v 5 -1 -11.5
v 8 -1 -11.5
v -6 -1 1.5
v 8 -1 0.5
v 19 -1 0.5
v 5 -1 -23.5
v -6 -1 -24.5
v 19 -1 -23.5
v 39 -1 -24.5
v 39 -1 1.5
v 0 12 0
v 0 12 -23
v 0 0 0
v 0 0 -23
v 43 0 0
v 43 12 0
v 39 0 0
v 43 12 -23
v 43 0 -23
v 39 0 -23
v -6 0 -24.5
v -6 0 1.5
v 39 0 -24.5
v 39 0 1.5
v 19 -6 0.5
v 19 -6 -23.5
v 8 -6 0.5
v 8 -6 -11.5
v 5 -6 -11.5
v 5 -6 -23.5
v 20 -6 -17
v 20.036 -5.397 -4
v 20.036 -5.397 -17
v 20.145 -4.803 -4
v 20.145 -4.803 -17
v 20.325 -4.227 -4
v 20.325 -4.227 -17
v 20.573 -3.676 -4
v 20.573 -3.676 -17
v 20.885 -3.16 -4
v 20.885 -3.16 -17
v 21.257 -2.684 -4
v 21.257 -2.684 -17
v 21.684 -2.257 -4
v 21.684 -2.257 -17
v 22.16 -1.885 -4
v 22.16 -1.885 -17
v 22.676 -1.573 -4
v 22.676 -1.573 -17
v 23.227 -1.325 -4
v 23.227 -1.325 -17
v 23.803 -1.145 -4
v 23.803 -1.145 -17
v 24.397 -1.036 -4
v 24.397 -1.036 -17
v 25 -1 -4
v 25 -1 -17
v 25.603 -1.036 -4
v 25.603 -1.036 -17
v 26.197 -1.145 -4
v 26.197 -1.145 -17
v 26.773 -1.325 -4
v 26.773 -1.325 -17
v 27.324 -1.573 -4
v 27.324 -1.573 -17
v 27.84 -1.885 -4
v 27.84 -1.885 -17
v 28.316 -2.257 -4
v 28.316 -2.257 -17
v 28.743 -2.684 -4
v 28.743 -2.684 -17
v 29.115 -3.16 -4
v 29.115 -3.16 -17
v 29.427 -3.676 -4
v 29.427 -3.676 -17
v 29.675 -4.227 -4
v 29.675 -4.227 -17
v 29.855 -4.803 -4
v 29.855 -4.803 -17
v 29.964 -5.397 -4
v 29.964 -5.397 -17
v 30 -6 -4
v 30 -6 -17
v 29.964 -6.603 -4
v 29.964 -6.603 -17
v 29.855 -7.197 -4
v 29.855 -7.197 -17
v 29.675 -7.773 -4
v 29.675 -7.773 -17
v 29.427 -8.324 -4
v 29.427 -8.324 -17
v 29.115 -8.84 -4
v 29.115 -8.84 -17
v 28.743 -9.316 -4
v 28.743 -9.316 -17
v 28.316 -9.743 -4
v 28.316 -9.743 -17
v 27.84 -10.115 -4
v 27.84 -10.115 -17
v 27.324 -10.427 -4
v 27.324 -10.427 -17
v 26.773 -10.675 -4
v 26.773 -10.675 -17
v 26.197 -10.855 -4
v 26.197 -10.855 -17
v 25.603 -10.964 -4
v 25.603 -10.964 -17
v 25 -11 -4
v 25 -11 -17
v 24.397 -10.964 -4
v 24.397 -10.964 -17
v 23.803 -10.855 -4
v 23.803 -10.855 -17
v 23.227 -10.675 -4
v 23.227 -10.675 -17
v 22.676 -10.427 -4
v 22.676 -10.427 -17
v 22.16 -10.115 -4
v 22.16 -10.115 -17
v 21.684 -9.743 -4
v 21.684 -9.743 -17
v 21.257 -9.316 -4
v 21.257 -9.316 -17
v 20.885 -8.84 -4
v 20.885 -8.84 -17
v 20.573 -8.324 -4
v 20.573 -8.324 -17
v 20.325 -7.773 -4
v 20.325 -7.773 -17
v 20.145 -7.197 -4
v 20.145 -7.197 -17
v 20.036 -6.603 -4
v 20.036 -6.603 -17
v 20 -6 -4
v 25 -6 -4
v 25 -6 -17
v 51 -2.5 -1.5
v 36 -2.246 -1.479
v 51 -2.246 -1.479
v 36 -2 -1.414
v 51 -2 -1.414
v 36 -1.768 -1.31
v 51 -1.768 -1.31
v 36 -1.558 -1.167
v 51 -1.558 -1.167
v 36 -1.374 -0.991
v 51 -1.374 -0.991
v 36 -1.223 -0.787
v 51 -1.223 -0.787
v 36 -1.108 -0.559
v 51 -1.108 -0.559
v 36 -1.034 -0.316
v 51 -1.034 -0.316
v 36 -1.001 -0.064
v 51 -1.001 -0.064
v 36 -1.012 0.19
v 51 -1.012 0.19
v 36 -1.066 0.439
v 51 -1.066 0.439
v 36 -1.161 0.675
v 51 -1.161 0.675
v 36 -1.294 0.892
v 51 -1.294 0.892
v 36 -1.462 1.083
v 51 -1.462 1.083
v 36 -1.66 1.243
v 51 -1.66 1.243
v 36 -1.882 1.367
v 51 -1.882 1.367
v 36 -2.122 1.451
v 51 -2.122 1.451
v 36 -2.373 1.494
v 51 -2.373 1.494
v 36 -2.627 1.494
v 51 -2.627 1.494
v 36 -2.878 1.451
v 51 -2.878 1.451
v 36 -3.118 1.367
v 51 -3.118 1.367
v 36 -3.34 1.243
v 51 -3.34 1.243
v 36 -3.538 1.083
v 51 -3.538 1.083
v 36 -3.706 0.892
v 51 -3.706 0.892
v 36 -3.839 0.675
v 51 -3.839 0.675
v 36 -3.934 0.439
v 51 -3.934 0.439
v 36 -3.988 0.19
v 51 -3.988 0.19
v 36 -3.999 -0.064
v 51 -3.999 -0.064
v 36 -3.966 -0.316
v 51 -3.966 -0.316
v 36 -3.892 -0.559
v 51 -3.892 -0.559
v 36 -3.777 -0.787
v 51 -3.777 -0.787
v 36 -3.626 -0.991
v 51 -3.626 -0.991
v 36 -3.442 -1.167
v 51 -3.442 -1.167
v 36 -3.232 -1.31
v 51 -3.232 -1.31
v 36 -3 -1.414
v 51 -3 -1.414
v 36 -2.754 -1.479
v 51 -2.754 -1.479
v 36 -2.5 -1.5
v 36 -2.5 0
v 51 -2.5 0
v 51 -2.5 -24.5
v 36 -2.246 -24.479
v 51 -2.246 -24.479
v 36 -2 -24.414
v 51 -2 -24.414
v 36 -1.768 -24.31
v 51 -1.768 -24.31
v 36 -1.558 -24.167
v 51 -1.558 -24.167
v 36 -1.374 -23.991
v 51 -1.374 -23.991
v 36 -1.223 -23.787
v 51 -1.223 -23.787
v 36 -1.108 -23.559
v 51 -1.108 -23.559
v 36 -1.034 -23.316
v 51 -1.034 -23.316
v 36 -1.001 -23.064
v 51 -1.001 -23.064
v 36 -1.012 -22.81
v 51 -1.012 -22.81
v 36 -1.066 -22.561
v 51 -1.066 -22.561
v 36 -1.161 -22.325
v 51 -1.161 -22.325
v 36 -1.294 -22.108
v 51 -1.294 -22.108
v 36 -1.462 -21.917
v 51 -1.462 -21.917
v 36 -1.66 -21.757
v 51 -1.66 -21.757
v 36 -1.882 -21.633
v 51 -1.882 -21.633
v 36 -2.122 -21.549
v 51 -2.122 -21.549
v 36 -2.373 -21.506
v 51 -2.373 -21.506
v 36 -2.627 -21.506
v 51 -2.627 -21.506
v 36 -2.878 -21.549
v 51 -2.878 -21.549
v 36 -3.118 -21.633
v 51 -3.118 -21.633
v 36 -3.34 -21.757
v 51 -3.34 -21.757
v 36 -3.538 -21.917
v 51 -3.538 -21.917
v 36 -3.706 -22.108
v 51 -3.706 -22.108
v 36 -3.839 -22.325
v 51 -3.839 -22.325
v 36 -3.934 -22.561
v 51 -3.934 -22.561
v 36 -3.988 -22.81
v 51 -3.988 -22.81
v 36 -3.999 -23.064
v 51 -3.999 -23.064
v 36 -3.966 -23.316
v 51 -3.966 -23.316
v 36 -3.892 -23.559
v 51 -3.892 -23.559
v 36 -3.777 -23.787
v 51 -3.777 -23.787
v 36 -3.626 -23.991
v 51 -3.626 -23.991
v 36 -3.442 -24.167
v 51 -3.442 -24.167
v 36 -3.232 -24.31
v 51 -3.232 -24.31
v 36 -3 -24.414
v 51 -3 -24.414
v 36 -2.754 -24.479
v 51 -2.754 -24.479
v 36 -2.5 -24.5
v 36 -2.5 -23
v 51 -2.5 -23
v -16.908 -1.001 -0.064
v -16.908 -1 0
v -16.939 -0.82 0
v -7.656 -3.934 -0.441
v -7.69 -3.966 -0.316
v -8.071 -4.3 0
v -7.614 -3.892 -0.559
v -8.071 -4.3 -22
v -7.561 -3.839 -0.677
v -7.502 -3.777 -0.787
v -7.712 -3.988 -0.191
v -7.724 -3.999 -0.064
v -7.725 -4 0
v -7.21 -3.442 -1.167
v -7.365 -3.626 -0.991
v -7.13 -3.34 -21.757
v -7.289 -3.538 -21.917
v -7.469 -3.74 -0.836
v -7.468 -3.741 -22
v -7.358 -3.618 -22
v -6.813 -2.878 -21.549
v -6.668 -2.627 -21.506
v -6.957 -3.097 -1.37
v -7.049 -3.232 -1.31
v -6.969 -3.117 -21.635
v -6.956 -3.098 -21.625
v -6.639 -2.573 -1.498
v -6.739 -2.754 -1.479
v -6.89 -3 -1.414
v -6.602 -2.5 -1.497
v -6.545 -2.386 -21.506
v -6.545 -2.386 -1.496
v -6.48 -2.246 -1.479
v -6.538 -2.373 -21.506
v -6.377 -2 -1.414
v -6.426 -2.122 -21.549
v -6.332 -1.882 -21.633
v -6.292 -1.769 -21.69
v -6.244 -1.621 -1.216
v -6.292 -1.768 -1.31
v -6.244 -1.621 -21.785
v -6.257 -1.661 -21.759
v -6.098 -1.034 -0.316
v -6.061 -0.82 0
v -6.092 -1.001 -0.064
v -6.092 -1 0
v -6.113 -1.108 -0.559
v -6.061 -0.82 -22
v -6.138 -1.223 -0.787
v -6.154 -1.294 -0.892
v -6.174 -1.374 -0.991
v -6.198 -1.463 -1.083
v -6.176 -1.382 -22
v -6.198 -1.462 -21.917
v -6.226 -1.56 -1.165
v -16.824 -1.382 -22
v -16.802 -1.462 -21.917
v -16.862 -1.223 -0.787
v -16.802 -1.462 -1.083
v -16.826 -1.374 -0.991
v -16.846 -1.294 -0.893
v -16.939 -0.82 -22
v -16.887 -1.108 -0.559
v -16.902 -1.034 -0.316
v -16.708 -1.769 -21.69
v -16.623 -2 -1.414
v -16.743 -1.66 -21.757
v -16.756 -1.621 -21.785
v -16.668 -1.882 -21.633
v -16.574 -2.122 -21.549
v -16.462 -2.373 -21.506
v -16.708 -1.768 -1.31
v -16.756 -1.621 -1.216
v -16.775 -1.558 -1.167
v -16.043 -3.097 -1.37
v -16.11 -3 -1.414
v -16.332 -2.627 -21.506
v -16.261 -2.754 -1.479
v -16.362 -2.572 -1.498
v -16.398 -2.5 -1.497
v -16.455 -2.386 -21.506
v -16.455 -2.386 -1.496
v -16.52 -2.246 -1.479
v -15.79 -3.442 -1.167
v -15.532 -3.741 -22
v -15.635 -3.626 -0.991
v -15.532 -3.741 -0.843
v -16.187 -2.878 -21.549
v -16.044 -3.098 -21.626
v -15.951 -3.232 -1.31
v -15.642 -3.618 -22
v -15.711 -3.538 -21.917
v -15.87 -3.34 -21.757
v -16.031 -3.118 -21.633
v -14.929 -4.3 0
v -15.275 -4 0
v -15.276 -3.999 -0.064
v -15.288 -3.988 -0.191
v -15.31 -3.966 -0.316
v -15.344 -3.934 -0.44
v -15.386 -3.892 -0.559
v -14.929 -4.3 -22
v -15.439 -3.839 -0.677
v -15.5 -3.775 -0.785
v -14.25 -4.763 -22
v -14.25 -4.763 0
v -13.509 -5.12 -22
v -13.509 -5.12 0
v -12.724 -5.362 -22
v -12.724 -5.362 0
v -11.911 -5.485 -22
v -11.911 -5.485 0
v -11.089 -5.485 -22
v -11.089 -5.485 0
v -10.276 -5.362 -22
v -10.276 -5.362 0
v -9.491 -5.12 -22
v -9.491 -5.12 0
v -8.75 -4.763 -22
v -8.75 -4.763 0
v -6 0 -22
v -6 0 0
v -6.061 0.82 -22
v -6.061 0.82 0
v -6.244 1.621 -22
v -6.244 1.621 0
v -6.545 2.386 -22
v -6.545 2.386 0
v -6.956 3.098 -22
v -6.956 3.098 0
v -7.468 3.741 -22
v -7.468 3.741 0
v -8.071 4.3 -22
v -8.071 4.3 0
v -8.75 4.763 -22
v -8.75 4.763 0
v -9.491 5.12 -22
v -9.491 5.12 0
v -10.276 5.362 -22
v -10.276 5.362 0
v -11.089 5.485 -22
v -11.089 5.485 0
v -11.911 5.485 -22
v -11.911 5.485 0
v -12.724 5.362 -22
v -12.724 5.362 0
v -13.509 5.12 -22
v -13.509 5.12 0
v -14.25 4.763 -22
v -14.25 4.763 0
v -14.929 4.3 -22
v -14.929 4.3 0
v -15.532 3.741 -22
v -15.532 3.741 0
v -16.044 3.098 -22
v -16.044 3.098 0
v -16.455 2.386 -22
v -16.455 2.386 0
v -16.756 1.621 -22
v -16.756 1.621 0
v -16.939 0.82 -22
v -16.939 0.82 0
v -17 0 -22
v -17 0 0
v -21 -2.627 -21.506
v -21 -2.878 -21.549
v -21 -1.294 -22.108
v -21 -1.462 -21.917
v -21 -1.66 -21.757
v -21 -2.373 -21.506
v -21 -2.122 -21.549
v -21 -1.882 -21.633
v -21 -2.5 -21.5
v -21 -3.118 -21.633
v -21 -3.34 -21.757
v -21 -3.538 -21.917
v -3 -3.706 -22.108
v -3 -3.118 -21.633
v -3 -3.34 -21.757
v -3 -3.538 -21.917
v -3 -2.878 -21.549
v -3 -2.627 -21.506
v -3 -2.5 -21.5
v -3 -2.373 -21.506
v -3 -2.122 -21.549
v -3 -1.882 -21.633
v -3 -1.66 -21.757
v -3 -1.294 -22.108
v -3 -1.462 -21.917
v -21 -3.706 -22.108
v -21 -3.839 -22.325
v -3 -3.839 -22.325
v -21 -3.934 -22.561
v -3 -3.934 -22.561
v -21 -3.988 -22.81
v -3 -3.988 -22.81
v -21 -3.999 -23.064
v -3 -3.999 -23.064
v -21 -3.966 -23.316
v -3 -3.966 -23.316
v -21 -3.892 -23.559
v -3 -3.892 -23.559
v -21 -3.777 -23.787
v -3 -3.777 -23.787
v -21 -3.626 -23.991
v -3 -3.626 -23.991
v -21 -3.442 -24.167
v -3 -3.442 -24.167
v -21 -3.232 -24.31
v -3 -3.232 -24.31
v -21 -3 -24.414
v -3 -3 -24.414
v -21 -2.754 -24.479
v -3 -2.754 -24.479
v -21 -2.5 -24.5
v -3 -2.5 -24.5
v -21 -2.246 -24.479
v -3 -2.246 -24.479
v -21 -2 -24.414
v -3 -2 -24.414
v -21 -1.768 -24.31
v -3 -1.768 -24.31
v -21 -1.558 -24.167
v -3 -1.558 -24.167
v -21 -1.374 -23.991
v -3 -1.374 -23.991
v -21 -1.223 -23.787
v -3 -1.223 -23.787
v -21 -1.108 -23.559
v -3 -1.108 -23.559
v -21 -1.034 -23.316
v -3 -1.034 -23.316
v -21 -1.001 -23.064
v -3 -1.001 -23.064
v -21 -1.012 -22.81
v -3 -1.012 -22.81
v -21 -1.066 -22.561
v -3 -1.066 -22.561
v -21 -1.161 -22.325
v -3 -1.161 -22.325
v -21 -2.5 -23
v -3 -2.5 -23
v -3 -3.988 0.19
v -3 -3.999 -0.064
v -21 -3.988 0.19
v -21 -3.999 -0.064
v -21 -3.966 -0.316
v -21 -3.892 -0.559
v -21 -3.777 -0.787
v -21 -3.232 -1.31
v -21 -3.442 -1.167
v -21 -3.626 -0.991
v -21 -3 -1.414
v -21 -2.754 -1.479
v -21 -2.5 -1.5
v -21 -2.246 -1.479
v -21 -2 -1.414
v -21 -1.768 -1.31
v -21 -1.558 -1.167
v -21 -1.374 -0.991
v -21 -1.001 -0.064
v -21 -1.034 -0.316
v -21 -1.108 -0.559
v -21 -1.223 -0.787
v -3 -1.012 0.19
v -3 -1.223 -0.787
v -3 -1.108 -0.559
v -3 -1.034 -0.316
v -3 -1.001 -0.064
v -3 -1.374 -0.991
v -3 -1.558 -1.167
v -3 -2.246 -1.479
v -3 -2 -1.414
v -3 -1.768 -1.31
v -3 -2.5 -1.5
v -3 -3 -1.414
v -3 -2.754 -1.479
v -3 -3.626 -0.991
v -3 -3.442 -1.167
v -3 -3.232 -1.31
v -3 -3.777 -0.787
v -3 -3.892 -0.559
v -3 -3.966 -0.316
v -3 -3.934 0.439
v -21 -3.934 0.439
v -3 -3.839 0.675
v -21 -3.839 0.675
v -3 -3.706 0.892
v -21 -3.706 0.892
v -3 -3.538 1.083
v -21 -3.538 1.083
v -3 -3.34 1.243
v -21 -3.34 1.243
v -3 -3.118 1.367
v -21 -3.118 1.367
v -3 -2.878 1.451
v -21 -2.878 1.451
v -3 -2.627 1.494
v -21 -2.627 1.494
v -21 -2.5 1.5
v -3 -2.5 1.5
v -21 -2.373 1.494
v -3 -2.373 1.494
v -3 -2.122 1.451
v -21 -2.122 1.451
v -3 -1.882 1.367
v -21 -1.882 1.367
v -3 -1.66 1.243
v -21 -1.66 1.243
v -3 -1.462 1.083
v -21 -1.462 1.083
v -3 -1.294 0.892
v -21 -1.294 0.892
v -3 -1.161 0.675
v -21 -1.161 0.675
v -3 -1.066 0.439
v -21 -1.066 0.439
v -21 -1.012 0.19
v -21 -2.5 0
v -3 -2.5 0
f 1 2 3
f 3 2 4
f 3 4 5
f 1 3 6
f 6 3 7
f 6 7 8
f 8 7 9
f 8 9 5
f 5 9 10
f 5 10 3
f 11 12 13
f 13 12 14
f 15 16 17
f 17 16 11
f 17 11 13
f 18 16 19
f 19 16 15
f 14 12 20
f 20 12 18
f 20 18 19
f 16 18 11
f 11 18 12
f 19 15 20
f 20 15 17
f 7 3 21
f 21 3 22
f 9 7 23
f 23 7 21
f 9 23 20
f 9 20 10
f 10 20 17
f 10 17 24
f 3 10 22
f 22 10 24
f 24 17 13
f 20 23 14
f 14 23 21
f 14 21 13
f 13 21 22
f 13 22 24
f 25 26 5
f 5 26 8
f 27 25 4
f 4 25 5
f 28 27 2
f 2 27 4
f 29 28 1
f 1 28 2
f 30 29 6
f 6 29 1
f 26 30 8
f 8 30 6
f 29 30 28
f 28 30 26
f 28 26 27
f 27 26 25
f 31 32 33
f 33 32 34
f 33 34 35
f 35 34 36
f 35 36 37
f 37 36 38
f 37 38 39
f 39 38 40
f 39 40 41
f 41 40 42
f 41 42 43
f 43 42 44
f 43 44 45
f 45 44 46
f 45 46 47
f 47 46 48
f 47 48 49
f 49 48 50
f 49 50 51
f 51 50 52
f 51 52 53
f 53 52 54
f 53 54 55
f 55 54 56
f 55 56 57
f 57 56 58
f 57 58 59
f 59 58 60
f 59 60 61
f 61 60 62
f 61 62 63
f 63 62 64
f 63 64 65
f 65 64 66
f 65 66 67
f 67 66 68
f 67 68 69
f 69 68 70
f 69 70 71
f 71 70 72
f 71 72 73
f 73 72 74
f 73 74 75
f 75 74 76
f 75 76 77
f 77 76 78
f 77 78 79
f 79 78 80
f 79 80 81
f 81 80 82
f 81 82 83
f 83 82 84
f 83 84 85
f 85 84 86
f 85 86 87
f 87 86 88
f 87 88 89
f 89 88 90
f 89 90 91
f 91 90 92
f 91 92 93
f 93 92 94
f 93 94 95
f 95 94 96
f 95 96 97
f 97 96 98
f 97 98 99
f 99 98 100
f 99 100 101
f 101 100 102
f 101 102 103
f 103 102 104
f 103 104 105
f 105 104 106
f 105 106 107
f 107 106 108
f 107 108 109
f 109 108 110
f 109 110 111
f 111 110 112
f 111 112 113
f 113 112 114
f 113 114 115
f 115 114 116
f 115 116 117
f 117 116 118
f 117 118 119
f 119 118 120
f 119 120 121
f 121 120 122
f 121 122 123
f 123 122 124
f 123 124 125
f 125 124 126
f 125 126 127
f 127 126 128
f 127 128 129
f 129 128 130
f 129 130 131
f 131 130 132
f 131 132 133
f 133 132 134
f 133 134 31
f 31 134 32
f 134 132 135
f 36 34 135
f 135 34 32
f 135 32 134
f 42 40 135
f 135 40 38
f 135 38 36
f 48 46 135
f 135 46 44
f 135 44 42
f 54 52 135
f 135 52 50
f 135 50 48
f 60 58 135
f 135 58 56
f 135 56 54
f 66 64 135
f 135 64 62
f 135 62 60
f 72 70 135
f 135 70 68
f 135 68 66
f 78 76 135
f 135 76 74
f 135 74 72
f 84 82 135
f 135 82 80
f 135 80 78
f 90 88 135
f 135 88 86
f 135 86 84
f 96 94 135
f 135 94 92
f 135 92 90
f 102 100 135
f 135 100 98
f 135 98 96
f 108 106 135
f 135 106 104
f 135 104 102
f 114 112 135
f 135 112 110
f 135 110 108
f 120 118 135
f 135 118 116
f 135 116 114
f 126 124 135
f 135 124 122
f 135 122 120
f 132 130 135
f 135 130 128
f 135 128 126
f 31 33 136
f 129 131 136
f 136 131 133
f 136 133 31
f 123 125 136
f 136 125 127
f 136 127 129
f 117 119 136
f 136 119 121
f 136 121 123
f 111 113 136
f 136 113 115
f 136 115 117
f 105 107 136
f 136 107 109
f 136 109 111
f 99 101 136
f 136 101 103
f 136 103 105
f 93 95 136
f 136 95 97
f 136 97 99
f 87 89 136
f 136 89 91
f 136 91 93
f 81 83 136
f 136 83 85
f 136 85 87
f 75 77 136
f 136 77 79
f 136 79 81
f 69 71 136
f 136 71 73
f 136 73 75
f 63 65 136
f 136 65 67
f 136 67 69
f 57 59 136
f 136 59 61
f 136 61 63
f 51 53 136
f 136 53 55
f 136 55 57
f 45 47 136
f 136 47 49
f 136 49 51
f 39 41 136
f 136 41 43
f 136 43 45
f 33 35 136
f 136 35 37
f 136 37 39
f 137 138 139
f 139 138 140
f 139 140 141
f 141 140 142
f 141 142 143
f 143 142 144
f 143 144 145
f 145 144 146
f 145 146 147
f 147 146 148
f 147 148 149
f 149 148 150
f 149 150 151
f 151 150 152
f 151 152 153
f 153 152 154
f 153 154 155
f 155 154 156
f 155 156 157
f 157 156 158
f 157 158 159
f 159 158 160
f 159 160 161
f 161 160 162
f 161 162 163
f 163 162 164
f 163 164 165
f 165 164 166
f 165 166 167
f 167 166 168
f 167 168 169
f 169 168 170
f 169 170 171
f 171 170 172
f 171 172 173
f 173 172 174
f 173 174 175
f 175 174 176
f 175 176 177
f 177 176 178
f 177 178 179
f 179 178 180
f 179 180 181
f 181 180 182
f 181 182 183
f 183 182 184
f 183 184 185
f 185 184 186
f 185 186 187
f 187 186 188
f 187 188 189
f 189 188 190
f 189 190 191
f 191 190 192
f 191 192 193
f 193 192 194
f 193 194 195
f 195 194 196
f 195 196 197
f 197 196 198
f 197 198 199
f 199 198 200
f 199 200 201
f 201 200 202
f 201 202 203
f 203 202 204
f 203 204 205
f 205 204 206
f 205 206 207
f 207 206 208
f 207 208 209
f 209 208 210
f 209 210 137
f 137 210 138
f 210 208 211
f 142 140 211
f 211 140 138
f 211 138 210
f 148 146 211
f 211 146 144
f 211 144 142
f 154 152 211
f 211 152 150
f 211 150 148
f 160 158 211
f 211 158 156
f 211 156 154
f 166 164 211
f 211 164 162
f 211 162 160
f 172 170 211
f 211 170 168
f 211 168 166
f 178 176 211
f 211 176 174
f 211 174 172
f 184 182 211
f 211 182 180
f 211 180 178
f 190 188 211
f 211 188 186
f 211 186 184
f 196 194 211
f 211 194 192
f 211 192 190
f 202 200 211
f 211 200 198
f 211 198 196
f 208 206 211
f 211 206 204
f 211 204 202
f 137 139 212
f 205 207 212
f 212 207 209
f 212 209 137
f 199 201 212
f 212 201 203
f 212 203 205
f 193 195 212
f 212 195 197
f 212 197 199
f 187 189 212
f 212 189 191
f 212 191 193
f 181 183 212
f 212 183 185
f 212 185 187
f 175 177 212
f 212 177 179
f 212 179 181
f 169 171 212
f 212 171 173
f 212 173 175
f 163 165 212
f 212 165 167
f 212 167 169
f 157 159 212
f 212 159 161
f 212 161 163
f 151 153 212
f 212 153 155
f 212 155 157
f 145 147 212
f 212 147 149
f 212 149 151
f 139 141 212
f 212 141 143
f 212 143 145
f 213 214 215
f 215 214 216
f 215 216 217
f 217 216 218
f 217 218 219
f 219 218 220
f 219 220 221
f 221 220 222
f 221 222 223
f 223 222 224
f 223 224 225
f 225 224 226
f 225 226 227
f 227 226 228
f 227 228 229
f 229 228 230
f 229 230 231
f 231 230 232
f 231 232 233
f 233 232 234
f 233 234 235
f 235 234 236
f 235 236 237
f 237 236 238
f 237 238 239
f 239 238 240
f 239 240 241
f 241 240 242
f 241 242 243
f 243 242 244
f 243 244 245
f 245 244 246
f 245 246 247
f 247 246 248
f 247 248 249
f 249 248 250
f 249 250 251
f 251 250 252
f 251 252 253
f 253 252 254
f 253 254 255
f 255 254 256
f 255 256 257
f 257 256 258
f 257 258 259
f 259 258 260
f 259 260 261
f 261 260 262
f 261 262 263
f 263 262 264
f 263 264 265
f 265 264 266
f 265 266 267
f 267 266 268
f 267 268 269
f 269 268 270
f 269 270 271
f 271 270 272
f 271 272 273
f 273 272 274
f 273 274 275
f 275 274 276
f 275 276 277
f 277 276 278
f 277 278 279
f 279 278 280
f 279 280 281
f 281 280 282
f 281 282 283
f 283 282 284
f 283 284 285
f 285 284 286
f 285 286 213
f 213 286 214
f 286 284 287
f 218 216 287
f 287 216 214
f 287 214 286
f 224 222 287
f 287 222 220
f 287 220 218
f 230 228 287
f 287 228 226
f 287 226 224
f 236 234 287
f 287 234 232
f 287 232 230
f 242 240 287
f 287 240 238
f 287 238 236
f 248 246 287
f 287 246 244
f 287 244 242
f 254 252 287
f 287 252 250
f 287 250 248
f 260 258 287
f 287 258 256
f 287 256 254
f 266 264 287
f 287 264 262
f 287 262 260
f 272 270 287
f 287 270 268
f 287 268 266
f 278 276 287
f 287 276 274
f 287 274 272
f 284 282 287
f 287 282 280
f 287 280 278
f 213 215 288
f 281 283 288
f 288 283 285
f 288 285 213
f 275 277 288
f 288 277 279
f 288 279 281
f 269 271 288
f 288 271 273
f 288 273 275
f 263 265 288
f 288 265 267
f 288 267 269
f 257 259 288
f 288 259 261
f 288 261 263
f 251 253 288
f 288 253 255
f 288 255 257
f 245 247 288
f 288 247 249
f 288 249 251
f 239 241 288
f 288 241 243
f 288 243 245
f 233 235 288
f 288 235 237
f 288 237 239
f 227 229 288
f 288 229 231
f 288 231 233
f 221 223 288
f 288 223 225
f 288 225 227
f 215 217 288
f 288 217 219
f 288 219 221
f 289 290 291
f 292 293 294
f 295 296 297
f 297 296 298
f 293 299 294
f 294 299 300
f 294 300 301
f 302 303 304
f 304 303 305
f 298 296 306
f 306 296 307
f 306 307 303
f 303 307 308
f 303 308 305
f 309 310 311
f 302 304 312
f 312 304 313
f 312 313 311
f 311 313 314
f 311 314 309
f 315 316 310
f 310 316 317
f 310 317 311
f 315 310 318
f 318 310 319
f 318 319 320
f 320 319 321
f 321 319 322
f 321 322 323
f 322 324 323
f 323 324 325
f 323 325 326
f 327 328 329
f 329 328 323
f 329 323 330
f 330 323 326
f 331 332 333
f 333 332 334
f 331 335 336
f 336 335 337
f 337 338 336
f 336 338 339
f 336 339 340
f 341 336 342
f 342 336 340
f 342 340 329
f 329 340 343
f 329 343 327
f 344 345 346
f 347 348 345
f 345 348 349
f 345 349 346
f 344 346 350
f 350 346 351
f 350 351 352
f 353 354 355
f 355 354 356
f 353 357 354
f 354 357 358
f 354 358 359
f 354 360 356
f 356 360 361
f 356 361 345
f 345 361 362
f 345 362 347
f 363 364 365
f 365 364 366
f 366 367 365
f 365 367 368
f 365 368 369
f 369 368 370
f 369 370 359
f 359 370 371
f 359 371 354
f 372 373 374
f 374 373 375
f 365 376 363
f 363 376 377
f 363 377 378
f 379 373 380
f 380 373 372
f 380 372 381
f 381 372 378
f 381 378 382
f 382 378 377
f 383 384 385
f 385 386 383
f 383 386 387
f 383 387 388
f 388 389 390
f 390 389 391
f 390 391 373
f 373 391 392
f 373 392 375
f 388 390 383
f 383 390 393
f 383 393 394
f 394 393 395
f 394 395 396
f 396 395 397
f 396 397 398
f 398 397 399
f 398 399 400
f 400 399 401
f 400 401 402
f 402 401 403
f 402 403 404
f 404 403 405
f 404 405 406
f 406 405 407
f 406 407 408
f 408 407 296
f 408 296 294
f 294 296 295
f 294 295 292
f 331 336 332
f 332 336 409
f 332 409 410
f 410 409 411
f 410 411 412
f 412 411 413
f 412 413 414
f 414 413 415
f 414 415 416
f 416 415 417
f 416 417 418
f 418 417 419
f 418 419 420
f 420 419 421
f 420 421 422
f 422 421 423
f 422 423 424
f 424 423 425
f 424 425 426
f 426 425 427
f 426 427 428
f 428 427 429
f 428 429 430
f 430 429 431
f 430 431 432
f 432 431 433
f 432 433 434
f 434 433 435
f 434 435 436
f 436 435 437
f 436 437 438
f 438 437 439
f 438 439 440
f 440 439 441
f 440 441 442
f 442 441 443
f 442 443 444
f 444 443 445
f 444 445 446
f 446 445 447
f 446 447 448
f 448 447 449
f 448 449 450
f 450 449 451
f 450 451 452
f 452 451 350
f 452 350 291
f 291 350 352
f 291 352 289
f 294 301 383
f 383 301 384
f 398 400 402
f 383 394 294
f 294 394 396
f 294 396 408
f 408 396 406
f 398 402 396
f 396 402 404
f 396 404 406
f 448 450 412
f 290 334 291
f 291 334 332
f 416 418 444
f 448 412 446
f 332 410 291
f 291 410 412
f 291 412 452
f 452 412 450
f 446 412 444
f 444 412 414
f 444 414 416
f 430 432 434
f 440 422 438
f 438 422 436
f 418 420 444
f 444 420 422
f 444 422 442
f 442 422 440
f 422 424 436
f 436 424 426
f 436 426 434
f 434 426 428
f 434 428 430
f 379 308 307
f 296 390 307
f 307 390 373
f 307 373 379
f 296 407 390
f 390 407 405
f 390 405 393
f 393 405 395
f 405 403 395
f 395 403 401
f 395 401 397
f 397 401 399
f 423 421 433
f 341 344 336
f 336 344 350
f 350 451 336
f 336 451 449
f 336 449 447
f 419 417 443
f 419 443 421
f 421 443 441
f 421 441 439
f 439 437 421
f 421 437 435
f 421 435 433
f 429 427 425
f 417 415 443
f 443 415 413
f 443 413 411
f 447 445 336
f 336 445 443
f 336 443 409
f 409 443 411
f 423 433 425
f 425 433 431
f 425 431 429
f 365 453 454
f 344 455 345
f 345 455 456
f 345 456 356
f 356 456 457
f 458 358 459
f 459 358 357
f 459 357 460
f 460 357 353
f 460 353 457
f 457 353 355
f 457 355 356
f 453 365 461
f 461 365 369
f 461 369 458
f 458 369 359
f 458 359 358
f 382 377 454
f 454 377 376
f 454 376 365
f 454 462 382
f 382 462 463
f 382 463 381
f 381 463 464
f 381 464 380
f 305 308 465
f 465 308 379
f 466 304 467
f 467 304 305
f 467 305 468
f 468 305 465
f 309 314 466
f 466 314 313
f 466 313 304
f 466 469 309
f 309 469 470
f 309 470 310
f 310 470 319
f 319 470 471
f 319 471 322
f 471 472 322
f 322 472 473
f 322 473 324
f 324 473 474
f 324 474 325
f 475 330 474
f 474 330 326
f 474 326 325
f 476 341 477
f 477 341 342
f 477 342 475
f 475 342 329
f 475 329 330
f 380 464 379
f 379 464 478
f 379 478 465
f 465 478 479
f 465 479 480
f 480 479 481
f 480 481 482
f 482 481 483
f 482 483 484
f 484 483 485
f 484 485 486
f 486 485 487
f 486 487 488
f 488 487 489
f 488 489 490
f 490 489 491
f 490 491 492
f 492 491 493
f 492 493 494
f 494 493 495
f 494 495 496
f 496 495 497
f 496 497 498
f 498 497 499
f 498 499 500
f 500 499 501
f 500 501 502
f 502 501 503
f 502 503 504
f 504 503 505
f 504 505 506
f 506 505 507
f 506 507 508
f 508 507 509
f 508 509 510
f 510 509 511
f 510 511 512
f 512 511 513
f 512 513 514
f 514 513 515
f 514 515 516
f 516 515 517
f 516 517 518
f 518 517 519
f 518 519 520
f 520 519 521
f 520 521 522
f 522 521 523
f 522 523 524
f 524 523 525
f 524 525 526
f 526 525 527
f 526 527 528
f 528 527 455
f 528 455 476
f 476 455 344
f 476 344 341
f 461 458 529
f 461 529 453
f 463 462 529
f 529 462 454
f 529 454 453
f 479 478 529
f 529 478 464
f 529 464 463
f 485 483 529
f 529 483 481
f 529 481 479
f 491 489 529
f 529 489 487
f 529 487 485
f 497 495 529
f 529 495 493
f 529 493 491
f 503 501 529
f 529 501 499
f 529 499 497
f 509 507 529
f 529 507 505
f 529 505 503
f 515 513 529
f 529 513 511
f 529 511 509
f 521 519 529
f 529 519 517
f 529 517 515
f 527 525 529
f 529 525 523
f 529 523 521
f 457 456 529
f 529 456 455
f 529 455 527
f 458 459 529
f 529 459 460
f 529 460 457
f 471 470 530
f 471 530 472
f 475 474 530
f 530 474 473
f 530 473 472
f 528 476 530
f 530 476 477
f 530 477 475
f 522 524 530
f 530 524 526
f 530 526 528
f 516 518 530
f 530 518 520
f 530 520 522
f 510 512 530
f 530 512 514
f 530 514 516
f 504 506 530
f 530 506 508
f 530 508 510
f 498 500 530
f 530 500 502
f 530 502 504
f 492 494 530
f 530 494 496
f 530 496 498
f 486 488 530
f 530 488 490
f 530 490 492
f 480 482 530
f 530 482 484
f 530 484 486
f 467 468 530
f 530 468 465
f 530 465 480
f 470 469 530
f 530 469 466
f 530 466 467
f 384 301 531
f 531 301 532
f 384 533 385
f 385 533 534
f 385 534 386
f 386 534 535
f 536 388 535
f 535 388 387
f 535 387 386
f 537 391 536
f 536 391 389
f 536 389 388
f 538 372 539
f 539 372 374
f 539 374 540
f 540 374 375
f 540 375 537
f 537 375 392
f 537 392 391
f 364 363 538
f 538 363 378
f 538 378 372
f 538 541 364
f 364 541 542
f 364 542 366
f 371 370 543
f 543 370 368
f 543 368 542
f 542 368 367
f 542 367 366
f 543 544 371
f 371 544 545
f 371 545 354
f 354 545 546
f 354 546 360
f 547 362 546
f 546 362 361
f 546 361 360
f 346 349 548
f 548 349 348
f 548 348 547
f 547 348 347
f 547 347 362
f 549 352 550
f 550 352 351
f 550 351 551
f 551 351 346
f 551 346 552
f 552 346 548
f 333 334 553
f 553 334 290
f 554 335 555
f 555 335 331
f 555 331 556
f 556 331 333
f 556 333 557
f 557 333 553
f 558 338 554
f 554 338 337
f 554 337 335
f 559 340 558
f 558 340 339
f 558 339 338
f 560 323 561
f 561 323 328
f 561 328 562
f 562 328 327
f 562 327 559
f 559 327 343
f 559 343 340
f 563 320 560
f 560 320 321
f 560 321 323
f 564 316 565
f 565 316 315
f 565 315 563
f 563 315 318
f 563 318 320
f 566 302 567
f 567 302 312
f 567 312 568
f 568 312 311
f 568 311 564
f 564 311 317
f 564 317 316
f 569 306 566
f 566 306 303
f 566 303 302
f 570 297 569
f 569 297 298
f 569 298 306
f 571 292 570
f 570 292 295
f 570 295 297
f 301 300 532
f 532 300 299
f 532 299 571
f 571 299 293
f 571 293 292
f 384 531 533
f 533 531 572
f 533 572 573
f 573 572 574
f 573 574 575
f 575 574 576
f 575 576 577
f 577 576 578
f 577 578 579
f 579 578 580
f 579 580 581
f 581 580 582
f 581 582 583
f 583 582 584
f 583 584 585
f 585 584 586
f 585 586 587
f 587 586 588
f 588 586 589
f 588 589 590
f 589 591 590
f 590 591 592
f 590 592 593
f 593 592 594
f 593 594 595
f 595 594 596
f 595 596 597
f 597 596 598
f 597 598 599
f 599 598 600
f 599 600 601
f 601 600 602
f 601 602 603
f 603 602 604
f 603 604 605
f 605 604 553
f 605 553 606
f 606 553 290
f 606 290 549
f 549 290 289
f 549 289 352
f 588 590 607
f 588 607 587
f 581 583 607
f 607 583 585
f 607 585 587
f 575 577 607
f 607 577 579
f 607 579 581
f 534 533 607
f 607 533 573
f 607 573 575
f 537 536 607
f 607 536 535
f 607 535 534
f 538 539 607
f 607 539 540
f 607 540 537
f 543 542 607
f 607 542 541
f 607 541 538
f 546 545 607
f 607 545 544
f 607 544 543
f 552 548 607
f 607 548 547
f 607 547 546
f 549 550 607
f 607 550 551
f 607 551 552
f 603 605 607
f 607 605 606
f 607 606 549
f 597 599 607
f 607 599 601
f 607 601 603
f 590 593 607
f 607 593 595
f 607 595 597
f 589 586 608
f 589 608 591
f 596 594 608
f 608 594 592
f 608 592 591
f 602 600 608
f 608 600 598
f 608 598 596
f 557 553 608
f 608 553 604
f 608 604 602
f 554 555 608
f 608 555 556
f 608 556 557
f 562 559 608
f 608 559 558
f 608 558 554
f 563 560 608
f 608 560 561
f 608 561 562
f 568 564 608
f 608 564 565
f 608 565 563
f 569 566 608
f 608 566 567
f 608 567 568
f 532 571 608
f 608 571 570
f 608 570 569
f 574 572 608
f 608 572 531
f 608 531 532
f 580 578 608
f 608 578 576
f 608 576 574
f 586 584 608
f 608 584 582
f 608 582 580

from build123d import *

# Parameters (mm, degrees)
CROQUIS1_W                     = 43
CROQUIS1_H                     = 23
SALIENTE_EXTRUIR1_DEPTH        = 12
CROQUIS2_W                     = 45
CROQUIS2_H                     = 26
SALIENTE_EXTRUIR2_DEPTH        = 1
CROQUIS4_R                     = 5.5
SALIENTE_EXTRUIR3_DEPTH        = 22
SALIENTE_EXTRUIR4_DEPTH        = 5
SALIENTE_EXTRUIR5_START        = -6
CROQUIS7_R                     = 5
SALIENTE_EXTRUIR5_DEPTH        = 13
SALIENTE_EXTRUIR6_DEPTH        = 12
SALIENTE_EXTRUIR6_DEPTH_BACK   = 3
CROQUIS8_R                     = 1.5
SALIENTE_EXTRUIR6_2_DEPTH      = 12
SALIENTE_EXTRUIR6_2_DEPTH_BACK = 3
SALIENTE_EXTRUIR7_DEPTH        = 15
SALIENTE_EXTRUIR7_DEPTH_BACK   = 3
CROQUIS9_R                     = 1.5


with BuildPart() as part:
    # Croquis1 → Saliente-Extruir1 (new body)
    with BuildSketch(Plane(origin=(0, 0, 0), x_dir=(1, 0, 0), z_dir=(0, 1, 0))):
        with Locations((21.5, 11.5)):
            Rectangle(CROQUIS1_W, CROQUIS1_H)
    extrude(amount=SALIENTE_EXTRUIR1_DEPTH)

    # Croquis2 → Saliente-Extruir2 (add)
    with BuildSketch(Plane.XZ):
        with Locations((16.5, -11.5)):
            Rectangle(CROQUIS2_W, CROQUIS2_H)
    extrude(amount=SALIENTE_EXTRUIR2_DEPTH)

    # Croquis6 → Saliente-Extruir4 (add)
    with BuildSketch(Plane.XZ.offset(1)):
        Polygon((8, 0.5), (19, 0.5), (19, -23.5), (5, -23.5), (5, -11.5), (8, -11.5), align=None)
    extrude(amount=SALIENTE_EXTRUIR4_DEPTH)


with BuildPart() as body_2:
    # Croquis4 → Saliente-Extruir3 (new body)
    with BuildSketch(Plane.XY):
        with Locations((-11.5, 0)):
            Circle(CROQUIS4_R)
    extrude(amount=-SALIENTE_EXTRUIR3_DEPTH)

    # Croquis9 → Saliente-Extruir7 (add, two sides: drawn at the far end of the back side and taken through both)
    with BuildSketch(Plane.ZY.offset(6).offset(-SALIENTE_EXTRUIR7_DEPTH_BACK)):
        with Locations(Location((-23, -2.5, 0), (0, 0, 180))):
            Circle(CROQUIS9_R)
        with Locations(Location((0, -2.5, 0), (0, 0, 180))):
            Circle(CROQUIS9_R)
    extrude(amount=SALIENTE_EXTRUIR7_DEPTH + SALIENTE_EXTRUIR7_DEPTH_BACK)


with BuildPart() as body_3:
    # Croquis7 → Saliente-Extruir5 (new body)
    with BuildSketch(Plane(origin=(0, 0, -23), x_dir=(-1, 0, 0), z_dir=(0, 0, -1)).offset(SALIENTE_EXTRUIR5_START)):
        with Locations((-25, -6)):
            Circle(CROQUIS7_R)
    extrude(amount=-SALIENTE_EXTRUIR5_DEPTH)


with BuildPart() as body_4:
    # Croquis8 → Saliente-Extruir6 (new, two sides: drawn at the far end of the back side and taken through both)
    with BuildSketch(Plane(origin=(39, 0, 0), x_dir=(0, 0, -1), z_dir=(1, 0, 0)).offset(-SALIENTE_EXTRUIR6_DEPTH_BACK)):
        with Locations((0, -2.5)):
            Circle(CROQUIS8_R)
    extrude(amount=SALIENTE_EXTRUIR6_DEPTH + SALIENTE_EXTRUIR6_DEPTH_BACK)


with BuildPart() as body_5:
    # Croquis8 → Saliente-Extruir6 2 (new, two sides: drawn at the far end of the back side and taken through both)
    with BuildSketch(Plane(origin=(39, 0, 0), x_dir=(0, 0, -1), z_dir=(1, 0, 0)).offset(-SALIENTE_EXTRUIR6_2_DEPTH_BACK)):
        with Locations((23, -2.5)):
            Circle(CROQUIS8_R)
    extrude(amount=SALIENTE_EXTRUIR6_2_DEPTH + SALIENTE_EXTRUIR6_2_DEPTH_BACK)


solid = Compound([part.part, body_2.part, body_3.part, body_4.part, body_5.part])
